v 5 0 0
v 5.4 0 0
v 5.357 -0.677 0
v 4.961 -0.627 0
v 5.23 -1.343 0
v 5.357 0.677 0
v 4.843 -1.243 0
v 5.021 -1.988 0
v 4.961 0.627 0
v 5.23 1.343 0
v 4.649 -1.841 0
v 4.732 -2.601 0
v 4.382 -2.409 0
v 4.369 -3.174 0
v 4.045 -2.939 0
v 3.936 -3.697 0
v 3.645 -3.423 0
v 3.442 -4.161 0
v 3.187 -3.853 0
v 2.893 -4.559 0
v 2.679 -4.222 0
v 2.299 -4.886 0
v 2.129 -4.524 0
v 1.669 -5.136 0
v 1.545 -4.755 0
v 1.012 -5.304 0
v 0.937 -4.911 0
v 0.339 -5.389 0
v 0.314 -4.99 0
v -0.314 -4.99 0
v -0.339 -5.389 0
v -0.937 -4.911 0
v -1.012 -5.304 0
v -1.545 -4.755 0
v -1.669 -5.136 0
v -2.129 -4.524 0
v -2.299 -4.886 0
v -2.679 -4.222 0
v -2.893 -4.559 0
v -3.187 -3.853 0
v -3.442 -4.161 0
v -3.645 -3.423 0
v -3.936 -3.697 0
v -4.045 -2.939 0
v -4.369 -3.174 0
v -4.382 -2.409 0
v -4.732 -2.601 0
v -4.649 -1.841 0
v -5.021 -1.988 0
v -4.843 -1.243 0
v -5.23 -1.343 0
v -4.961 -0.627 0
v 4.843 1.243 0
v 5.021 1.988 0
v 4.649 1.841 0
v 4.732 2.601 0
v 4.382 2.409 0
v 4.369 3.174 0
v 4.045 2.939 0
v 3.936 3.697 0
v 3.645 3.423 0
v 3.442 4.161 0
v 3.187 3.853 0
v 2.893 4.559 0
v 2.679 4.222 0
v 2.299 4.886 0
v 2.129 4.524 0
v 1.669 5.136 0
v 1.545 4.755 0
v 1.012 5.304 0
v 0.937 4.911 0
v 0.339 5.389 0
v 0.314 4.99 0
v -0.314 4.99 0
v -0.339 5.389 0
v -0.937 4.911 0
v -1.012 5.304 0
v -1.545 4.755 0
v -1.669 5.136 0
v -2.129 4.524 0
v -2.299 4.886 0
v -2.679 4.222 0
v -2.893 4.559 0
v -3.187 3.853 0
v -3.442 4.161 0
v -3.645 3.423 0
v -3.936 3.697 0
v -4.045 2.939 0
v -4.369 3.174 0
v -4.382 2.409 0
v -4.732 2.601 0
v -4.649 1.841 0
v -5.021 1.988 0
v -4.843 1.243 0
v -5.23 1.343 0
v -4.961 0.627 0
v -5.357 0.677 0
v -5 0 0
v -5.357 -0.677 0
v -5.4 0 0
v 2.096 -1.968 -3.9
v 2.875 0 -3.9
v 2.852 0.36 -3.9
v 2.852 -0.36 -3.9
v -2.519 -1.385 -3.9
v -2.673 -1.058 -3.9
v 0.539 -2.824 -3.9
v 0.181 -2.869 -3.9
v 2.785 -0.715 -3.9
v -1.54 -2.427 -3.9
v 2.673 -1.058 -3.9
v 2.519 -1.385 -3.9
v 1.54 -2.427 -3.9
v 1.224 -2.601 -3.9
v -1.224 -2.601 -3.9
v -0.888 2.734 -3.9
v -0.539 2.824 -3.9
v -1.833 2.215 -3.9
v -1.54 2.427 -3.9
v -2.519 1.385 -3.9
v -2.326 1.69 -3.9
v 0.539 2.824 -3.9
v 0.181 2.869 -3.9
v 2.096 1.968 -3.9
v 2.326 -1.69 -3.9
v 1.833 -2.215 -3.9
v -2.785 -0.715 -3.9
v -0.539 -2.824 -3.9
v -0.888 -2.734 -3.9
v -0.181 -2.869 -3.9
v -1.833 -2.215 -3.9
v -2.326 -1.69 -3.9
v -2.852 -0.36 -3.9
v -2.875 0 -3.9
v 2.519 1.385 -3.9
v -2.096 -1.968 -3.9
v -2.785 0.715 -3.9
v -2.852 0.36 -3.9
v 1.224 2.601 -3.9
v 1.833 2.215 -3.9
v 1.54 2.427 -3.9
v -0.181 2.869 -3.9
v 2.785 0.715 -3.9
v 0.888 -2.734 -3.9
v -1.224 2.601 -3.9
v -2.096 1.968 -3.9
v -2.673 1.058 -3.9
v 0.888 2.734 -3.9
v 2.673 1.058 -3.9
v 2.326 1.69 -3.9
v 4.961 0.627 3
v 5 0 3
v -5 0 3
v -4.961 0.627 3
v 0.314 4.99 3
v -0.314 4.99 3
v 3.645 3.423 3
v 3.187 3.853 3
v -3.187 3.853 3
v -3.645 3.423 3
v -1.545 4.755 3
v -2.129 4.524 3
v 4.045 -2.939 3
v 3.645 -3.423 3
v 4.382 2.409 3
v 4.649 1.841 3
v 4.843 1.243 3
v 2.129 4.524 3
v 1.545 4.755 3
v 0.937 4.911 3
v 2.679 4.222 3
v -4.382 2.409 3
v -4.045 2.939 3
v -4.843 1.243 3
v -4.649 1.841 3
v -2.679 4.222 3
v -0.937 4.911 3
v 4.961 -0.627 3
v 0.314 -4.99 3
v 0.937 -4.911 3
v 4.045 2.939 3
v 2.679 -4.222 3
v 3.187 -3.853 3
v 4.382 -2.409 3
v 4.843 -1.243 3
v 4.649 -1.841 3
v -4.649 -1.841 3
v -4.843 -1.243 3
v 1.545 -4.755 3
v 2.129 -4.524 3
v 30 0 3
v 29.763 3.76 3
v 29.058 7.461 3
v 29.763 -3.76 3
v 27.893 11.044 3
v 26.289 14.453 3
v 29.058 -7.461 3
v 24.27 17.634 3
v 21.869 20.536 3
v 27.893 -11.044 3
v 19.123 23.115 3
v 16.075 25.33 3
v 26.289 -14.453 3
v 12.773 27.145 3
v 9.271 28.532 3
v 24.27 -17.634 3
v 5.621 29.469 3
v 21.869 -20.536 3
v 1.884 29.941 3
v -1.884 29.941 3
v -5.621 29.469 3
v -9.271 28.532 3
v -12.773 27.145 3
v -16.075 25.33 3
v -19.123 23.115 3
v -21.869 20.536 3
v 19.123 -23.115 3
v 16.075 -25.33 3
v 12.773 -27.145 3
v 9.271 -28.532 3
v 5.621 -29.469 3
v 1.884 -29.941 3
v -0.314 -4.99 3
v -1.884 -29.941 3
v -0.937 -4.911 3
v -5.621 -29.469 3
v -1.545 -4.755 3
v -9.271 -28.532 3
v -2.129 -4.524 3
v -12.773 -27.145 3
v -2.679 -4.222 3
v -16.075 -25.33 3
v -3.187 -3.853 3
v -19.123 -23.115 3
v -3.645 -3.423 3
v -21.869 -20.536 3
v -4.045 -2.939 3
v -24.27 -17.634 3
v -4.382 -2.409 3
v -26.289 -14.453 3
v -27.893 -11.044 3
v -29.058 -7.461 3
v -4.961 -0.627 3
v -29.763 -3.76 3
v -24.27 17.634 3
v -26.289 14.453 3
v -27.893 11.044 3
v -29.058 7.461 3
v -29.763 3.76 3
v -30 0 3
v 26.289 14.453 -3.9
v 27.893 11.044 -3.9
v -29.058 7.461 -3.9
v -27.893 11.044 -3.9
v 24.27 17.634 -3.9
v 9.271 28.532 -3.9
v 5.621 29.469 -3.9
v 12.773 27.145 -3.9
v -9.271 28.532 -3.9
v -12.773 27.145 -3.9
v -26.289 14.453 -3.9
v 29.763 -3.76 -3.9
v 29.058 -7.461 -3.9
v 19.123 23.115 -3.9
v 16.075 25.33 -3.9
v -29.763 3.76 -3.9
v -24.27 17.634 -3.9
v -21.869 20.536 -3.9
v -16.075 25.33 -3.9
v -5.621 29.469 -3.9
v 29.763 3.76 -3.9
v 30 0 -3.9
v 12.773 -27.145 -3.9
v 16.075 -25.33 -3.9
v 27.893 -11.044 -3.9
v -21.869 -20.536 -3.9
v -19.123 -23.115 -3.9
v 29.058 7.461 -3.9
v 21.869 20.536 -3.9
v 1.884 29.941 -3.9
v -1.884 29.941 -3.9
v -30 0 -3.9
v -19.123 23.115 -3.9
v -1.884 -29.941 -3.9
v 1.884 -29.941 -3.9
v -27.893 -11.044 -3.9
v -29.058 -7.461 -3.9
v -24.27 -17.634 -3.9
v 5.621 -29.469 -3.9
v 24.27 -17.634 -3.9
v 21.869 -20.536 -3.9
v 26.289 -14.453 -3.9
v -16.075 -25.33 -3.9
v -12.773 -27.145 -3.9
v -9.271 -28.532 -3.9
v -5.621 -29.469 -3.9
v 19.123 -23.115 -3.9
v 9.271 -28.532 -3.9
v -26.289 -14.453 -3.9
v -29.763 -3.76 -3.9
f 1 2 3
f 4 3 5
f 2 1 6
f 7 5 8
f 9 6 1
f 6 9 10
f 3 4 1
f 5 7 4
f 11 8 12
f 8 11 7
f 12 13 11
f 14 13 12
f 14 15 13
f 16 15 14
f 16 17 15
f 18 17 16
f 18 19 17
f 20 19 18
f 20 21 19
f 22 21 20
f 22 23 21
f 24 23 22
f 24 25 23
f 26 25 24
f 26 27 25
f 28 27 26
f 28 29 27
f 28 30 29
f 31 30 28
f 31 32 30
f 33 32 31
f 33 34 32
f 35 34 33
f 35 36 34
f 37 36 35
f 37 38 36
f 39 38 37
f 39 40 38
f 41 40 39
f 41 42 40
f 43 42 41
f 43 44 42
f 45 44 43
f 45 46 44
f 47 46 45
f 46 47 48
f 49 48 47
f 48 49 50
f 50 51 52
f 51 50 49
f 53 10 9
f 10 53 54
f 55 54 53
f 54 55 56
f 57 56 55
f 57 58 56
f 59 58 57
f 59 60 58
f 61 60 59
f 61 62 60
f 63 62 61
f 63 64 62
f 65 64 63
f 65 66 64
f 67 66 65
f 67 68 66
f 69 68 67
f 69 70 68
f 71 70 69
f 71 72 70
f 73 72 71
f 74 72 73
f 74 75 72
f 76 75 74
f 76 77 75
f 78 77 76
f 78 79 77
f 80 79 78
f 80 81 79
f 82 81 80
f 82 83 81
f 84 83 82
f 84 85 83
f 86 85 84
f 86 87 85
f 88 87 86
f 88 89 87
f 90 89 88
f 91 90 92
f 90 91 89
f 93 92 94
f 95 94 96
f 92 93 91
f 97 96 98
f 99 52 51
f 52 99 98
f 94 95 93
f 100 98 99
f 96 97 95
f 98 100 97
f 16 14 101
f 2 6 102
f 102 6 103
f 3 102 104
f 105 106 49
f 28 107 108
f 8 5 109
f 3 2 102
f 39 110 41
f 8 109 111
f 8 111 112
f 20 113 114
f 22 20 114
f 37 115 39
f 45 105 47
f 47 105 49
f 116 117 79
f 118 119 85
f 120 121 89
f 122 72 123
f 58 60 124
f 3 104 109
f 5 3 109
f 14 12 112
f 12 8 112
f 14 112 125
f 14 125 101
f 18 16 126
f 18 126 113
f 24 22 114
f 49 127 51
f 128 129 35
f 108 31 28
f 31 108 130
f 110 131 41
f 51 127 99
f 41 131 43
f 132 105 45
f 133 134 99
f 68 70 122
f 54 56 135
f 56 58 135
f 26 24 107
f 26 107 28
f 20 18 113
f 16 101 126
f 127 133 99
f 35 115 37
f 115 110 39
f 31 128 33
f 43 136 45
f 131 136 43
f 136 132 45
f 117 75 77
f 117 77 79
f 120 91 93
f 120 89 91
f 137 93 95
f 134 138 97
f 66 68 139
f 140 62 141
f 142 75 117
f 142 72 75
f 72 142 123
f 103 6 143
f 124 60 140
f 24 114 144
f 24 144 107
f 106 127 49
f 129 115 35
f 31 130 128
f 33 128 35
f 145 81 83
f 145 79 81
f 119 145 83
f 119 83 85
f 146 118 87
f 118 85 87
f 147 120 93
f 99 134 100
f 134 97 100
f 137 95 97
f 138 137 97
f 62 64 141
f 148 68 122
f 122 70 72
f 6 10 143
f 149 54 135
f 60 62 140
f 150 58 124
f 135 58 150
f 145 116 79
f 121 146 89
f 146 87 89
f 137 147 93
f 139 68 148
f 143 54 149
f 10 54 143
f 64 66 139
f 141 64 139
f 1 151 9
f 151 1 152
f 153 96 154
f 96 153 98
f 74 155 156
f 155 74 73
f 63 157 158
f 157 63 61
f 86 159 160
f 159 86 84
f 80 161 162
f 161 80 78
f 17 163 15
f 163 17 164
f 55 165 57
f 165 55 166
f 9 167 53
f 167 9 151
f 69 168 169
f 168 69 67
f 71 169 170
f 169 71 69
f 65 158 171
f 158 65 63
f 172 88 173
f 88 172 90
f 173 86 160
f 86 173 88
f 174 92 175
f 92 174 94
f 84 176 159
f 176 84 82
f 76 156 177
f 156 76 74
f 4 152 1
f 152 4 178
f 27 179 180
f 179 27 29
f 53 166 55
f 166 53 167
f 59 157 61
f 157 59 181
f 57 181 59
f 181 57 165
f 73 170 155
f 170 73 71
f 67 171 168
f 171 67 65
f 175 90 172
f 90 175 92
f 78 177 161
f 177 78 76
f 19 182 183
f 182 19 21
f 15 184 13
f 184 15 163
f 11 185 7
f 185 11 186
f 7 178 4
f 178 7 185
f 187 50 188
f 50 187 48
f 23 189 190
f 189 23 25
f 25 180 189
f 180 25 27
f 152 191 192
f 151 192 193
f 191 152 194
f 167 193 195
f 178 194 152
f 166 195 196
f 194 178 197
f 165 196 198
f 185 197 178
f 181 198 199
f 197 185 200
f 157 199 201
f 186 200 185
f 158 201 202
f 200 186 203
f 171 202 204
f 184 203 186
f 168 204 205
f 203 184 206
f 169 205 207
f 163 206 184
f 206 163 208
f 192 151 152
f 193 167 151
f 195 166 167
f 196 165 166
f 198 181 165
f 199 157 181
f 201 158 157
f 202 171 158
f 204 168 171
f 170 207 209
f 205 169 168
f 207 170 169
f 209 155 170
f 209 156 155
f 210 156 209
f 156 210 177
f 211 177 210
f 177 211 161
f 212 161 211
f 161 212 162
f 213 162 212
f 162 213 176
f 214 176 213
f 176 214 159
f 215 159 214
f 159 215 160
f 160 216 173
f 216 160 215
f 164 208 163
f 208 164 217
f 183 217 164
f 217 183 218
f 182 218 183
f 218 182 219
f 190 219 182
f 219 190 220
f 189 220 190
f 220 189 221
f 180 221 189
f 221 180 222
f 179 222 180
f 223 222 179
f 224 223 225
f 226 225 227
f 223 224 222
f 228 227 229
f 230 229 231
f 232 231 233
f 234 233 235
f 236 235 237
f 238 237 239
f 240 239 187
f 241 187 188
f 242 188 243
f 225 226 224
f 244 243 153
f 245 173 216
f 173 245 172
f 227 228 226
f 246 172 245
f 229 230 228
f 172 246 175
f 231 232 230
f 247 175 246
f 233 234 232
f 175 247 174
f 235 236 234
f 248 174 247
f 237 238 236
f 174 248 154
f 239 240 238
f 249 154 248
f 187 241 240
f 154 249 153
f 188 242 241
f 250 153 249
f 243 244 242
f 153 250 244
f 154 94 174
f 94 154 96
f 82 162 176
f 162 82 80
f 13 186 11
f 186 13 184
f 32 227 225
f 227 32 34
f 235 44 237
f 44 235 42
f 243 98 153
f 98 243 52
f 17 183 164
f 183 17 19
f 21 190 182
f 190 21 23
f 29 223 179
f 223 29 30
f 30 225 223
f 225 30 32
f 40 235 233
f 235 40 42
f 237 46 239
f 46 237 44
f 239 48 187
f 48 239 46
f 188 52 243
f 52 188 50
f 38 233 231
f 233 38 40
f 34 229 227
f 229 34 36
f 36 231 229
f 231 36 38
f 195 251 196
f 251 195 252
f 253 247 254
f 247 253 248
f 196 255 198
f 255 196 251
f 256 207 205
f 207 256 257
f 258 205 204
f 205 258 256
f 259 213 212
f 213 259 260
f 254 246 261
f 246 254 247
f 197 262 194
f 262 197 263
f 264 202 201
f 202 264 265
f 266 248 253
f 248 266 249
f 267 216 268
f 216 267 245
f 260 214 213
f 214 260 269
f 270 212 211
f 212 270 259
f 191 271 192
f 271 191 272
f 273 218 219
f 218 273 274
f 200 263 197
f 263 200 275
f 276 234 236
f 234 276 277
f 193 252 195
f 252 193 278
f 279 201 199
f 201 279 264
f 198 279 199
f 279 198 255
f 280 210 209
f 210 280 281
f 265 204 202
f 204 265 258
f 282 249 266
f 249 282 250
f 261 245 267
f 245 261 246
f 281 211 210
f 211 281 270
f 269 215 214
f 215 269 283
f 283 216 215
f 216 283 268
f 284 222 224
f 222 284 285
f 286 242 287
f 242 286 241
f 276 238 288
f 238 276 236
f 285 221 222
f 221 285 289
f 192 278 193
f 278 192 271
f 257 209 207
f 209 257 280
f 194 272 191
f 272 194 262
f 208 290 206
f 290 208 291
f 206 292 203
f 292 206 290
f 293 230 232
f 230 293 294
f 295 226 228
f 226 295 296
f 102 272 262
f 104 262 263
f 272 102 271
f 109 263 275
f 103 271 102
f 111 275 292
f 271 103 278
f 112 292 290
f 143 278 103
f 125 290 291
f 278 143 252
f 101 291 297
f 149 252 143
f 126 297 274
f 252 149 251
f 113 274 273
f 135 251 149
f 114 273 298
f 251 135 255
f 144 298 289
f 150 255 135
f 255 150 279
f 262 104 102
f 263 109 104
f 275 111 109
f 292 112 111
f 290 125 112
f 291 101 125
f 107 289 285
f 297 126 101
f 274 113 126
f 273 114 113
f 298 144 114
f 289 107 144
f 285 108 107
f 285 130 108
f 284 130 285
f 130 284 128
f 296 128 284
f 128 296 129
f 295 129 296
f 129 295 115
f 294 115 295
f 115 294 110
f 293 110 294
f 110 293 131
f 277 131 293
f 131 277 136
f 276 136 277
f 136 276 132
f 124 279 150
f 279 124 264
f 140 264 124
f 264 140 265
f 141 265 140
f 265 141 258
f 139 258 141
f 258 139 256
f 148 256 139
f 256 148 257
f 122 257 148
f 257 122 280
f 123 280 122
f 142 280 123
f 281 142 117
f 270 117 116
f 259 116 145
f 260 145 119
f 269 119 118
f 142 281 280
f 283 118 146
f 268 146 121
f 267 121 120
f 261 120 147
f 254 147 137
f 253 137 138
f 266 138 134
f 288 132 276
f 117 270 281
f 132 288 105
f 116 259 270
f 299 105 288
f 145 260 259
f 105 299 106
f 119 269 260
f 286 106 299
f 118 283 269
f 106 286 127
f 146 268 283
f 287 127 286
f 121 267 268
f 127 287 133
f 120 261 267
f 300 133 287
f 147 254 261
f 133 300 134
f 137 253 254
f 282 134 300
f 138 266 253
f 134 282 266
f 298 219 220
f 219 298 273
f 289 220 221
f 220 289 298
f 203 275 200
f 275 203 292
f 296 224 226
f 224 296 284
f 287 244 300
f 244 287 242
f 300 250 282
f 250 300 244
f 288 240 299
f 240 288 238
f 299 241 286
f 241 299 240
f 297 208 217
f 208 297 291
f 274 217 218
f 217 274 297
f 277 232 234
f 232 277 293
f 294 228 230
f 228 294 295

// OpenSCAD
$fn = 50;

difference() {
	union() {
		translate(v = [0, 0, -3.9000000000000004]) {
			cylinder(h = 6.9, r = 30.0);
		}
	}
	union() {
		translate(v = [0, 0, 0]) {
			rotate(a = [0, 0, 0]) {
				difference() {
					union() {
						translate(v = [0, 0, -6.9]) {
							cylinder(h = 6.9, r = 2.6);
						}
						translate(v = [0, 0, -3.9]) {
							cylinder(h = 3.9, r1 = 2.875, r2 = 5.4);
						}
						translate(v = [0, 0, -6.9]) {
							cylinder(h = 6.9, r = 2.875);
						}
						translate(v = [0, 0, -6.9]) {
							cylinder(h = 6.9, r = 2.6);
						}
					}
					union();
				}
			}
		}
		#cylinder(h = 3, r = 5.0);
	}
}
